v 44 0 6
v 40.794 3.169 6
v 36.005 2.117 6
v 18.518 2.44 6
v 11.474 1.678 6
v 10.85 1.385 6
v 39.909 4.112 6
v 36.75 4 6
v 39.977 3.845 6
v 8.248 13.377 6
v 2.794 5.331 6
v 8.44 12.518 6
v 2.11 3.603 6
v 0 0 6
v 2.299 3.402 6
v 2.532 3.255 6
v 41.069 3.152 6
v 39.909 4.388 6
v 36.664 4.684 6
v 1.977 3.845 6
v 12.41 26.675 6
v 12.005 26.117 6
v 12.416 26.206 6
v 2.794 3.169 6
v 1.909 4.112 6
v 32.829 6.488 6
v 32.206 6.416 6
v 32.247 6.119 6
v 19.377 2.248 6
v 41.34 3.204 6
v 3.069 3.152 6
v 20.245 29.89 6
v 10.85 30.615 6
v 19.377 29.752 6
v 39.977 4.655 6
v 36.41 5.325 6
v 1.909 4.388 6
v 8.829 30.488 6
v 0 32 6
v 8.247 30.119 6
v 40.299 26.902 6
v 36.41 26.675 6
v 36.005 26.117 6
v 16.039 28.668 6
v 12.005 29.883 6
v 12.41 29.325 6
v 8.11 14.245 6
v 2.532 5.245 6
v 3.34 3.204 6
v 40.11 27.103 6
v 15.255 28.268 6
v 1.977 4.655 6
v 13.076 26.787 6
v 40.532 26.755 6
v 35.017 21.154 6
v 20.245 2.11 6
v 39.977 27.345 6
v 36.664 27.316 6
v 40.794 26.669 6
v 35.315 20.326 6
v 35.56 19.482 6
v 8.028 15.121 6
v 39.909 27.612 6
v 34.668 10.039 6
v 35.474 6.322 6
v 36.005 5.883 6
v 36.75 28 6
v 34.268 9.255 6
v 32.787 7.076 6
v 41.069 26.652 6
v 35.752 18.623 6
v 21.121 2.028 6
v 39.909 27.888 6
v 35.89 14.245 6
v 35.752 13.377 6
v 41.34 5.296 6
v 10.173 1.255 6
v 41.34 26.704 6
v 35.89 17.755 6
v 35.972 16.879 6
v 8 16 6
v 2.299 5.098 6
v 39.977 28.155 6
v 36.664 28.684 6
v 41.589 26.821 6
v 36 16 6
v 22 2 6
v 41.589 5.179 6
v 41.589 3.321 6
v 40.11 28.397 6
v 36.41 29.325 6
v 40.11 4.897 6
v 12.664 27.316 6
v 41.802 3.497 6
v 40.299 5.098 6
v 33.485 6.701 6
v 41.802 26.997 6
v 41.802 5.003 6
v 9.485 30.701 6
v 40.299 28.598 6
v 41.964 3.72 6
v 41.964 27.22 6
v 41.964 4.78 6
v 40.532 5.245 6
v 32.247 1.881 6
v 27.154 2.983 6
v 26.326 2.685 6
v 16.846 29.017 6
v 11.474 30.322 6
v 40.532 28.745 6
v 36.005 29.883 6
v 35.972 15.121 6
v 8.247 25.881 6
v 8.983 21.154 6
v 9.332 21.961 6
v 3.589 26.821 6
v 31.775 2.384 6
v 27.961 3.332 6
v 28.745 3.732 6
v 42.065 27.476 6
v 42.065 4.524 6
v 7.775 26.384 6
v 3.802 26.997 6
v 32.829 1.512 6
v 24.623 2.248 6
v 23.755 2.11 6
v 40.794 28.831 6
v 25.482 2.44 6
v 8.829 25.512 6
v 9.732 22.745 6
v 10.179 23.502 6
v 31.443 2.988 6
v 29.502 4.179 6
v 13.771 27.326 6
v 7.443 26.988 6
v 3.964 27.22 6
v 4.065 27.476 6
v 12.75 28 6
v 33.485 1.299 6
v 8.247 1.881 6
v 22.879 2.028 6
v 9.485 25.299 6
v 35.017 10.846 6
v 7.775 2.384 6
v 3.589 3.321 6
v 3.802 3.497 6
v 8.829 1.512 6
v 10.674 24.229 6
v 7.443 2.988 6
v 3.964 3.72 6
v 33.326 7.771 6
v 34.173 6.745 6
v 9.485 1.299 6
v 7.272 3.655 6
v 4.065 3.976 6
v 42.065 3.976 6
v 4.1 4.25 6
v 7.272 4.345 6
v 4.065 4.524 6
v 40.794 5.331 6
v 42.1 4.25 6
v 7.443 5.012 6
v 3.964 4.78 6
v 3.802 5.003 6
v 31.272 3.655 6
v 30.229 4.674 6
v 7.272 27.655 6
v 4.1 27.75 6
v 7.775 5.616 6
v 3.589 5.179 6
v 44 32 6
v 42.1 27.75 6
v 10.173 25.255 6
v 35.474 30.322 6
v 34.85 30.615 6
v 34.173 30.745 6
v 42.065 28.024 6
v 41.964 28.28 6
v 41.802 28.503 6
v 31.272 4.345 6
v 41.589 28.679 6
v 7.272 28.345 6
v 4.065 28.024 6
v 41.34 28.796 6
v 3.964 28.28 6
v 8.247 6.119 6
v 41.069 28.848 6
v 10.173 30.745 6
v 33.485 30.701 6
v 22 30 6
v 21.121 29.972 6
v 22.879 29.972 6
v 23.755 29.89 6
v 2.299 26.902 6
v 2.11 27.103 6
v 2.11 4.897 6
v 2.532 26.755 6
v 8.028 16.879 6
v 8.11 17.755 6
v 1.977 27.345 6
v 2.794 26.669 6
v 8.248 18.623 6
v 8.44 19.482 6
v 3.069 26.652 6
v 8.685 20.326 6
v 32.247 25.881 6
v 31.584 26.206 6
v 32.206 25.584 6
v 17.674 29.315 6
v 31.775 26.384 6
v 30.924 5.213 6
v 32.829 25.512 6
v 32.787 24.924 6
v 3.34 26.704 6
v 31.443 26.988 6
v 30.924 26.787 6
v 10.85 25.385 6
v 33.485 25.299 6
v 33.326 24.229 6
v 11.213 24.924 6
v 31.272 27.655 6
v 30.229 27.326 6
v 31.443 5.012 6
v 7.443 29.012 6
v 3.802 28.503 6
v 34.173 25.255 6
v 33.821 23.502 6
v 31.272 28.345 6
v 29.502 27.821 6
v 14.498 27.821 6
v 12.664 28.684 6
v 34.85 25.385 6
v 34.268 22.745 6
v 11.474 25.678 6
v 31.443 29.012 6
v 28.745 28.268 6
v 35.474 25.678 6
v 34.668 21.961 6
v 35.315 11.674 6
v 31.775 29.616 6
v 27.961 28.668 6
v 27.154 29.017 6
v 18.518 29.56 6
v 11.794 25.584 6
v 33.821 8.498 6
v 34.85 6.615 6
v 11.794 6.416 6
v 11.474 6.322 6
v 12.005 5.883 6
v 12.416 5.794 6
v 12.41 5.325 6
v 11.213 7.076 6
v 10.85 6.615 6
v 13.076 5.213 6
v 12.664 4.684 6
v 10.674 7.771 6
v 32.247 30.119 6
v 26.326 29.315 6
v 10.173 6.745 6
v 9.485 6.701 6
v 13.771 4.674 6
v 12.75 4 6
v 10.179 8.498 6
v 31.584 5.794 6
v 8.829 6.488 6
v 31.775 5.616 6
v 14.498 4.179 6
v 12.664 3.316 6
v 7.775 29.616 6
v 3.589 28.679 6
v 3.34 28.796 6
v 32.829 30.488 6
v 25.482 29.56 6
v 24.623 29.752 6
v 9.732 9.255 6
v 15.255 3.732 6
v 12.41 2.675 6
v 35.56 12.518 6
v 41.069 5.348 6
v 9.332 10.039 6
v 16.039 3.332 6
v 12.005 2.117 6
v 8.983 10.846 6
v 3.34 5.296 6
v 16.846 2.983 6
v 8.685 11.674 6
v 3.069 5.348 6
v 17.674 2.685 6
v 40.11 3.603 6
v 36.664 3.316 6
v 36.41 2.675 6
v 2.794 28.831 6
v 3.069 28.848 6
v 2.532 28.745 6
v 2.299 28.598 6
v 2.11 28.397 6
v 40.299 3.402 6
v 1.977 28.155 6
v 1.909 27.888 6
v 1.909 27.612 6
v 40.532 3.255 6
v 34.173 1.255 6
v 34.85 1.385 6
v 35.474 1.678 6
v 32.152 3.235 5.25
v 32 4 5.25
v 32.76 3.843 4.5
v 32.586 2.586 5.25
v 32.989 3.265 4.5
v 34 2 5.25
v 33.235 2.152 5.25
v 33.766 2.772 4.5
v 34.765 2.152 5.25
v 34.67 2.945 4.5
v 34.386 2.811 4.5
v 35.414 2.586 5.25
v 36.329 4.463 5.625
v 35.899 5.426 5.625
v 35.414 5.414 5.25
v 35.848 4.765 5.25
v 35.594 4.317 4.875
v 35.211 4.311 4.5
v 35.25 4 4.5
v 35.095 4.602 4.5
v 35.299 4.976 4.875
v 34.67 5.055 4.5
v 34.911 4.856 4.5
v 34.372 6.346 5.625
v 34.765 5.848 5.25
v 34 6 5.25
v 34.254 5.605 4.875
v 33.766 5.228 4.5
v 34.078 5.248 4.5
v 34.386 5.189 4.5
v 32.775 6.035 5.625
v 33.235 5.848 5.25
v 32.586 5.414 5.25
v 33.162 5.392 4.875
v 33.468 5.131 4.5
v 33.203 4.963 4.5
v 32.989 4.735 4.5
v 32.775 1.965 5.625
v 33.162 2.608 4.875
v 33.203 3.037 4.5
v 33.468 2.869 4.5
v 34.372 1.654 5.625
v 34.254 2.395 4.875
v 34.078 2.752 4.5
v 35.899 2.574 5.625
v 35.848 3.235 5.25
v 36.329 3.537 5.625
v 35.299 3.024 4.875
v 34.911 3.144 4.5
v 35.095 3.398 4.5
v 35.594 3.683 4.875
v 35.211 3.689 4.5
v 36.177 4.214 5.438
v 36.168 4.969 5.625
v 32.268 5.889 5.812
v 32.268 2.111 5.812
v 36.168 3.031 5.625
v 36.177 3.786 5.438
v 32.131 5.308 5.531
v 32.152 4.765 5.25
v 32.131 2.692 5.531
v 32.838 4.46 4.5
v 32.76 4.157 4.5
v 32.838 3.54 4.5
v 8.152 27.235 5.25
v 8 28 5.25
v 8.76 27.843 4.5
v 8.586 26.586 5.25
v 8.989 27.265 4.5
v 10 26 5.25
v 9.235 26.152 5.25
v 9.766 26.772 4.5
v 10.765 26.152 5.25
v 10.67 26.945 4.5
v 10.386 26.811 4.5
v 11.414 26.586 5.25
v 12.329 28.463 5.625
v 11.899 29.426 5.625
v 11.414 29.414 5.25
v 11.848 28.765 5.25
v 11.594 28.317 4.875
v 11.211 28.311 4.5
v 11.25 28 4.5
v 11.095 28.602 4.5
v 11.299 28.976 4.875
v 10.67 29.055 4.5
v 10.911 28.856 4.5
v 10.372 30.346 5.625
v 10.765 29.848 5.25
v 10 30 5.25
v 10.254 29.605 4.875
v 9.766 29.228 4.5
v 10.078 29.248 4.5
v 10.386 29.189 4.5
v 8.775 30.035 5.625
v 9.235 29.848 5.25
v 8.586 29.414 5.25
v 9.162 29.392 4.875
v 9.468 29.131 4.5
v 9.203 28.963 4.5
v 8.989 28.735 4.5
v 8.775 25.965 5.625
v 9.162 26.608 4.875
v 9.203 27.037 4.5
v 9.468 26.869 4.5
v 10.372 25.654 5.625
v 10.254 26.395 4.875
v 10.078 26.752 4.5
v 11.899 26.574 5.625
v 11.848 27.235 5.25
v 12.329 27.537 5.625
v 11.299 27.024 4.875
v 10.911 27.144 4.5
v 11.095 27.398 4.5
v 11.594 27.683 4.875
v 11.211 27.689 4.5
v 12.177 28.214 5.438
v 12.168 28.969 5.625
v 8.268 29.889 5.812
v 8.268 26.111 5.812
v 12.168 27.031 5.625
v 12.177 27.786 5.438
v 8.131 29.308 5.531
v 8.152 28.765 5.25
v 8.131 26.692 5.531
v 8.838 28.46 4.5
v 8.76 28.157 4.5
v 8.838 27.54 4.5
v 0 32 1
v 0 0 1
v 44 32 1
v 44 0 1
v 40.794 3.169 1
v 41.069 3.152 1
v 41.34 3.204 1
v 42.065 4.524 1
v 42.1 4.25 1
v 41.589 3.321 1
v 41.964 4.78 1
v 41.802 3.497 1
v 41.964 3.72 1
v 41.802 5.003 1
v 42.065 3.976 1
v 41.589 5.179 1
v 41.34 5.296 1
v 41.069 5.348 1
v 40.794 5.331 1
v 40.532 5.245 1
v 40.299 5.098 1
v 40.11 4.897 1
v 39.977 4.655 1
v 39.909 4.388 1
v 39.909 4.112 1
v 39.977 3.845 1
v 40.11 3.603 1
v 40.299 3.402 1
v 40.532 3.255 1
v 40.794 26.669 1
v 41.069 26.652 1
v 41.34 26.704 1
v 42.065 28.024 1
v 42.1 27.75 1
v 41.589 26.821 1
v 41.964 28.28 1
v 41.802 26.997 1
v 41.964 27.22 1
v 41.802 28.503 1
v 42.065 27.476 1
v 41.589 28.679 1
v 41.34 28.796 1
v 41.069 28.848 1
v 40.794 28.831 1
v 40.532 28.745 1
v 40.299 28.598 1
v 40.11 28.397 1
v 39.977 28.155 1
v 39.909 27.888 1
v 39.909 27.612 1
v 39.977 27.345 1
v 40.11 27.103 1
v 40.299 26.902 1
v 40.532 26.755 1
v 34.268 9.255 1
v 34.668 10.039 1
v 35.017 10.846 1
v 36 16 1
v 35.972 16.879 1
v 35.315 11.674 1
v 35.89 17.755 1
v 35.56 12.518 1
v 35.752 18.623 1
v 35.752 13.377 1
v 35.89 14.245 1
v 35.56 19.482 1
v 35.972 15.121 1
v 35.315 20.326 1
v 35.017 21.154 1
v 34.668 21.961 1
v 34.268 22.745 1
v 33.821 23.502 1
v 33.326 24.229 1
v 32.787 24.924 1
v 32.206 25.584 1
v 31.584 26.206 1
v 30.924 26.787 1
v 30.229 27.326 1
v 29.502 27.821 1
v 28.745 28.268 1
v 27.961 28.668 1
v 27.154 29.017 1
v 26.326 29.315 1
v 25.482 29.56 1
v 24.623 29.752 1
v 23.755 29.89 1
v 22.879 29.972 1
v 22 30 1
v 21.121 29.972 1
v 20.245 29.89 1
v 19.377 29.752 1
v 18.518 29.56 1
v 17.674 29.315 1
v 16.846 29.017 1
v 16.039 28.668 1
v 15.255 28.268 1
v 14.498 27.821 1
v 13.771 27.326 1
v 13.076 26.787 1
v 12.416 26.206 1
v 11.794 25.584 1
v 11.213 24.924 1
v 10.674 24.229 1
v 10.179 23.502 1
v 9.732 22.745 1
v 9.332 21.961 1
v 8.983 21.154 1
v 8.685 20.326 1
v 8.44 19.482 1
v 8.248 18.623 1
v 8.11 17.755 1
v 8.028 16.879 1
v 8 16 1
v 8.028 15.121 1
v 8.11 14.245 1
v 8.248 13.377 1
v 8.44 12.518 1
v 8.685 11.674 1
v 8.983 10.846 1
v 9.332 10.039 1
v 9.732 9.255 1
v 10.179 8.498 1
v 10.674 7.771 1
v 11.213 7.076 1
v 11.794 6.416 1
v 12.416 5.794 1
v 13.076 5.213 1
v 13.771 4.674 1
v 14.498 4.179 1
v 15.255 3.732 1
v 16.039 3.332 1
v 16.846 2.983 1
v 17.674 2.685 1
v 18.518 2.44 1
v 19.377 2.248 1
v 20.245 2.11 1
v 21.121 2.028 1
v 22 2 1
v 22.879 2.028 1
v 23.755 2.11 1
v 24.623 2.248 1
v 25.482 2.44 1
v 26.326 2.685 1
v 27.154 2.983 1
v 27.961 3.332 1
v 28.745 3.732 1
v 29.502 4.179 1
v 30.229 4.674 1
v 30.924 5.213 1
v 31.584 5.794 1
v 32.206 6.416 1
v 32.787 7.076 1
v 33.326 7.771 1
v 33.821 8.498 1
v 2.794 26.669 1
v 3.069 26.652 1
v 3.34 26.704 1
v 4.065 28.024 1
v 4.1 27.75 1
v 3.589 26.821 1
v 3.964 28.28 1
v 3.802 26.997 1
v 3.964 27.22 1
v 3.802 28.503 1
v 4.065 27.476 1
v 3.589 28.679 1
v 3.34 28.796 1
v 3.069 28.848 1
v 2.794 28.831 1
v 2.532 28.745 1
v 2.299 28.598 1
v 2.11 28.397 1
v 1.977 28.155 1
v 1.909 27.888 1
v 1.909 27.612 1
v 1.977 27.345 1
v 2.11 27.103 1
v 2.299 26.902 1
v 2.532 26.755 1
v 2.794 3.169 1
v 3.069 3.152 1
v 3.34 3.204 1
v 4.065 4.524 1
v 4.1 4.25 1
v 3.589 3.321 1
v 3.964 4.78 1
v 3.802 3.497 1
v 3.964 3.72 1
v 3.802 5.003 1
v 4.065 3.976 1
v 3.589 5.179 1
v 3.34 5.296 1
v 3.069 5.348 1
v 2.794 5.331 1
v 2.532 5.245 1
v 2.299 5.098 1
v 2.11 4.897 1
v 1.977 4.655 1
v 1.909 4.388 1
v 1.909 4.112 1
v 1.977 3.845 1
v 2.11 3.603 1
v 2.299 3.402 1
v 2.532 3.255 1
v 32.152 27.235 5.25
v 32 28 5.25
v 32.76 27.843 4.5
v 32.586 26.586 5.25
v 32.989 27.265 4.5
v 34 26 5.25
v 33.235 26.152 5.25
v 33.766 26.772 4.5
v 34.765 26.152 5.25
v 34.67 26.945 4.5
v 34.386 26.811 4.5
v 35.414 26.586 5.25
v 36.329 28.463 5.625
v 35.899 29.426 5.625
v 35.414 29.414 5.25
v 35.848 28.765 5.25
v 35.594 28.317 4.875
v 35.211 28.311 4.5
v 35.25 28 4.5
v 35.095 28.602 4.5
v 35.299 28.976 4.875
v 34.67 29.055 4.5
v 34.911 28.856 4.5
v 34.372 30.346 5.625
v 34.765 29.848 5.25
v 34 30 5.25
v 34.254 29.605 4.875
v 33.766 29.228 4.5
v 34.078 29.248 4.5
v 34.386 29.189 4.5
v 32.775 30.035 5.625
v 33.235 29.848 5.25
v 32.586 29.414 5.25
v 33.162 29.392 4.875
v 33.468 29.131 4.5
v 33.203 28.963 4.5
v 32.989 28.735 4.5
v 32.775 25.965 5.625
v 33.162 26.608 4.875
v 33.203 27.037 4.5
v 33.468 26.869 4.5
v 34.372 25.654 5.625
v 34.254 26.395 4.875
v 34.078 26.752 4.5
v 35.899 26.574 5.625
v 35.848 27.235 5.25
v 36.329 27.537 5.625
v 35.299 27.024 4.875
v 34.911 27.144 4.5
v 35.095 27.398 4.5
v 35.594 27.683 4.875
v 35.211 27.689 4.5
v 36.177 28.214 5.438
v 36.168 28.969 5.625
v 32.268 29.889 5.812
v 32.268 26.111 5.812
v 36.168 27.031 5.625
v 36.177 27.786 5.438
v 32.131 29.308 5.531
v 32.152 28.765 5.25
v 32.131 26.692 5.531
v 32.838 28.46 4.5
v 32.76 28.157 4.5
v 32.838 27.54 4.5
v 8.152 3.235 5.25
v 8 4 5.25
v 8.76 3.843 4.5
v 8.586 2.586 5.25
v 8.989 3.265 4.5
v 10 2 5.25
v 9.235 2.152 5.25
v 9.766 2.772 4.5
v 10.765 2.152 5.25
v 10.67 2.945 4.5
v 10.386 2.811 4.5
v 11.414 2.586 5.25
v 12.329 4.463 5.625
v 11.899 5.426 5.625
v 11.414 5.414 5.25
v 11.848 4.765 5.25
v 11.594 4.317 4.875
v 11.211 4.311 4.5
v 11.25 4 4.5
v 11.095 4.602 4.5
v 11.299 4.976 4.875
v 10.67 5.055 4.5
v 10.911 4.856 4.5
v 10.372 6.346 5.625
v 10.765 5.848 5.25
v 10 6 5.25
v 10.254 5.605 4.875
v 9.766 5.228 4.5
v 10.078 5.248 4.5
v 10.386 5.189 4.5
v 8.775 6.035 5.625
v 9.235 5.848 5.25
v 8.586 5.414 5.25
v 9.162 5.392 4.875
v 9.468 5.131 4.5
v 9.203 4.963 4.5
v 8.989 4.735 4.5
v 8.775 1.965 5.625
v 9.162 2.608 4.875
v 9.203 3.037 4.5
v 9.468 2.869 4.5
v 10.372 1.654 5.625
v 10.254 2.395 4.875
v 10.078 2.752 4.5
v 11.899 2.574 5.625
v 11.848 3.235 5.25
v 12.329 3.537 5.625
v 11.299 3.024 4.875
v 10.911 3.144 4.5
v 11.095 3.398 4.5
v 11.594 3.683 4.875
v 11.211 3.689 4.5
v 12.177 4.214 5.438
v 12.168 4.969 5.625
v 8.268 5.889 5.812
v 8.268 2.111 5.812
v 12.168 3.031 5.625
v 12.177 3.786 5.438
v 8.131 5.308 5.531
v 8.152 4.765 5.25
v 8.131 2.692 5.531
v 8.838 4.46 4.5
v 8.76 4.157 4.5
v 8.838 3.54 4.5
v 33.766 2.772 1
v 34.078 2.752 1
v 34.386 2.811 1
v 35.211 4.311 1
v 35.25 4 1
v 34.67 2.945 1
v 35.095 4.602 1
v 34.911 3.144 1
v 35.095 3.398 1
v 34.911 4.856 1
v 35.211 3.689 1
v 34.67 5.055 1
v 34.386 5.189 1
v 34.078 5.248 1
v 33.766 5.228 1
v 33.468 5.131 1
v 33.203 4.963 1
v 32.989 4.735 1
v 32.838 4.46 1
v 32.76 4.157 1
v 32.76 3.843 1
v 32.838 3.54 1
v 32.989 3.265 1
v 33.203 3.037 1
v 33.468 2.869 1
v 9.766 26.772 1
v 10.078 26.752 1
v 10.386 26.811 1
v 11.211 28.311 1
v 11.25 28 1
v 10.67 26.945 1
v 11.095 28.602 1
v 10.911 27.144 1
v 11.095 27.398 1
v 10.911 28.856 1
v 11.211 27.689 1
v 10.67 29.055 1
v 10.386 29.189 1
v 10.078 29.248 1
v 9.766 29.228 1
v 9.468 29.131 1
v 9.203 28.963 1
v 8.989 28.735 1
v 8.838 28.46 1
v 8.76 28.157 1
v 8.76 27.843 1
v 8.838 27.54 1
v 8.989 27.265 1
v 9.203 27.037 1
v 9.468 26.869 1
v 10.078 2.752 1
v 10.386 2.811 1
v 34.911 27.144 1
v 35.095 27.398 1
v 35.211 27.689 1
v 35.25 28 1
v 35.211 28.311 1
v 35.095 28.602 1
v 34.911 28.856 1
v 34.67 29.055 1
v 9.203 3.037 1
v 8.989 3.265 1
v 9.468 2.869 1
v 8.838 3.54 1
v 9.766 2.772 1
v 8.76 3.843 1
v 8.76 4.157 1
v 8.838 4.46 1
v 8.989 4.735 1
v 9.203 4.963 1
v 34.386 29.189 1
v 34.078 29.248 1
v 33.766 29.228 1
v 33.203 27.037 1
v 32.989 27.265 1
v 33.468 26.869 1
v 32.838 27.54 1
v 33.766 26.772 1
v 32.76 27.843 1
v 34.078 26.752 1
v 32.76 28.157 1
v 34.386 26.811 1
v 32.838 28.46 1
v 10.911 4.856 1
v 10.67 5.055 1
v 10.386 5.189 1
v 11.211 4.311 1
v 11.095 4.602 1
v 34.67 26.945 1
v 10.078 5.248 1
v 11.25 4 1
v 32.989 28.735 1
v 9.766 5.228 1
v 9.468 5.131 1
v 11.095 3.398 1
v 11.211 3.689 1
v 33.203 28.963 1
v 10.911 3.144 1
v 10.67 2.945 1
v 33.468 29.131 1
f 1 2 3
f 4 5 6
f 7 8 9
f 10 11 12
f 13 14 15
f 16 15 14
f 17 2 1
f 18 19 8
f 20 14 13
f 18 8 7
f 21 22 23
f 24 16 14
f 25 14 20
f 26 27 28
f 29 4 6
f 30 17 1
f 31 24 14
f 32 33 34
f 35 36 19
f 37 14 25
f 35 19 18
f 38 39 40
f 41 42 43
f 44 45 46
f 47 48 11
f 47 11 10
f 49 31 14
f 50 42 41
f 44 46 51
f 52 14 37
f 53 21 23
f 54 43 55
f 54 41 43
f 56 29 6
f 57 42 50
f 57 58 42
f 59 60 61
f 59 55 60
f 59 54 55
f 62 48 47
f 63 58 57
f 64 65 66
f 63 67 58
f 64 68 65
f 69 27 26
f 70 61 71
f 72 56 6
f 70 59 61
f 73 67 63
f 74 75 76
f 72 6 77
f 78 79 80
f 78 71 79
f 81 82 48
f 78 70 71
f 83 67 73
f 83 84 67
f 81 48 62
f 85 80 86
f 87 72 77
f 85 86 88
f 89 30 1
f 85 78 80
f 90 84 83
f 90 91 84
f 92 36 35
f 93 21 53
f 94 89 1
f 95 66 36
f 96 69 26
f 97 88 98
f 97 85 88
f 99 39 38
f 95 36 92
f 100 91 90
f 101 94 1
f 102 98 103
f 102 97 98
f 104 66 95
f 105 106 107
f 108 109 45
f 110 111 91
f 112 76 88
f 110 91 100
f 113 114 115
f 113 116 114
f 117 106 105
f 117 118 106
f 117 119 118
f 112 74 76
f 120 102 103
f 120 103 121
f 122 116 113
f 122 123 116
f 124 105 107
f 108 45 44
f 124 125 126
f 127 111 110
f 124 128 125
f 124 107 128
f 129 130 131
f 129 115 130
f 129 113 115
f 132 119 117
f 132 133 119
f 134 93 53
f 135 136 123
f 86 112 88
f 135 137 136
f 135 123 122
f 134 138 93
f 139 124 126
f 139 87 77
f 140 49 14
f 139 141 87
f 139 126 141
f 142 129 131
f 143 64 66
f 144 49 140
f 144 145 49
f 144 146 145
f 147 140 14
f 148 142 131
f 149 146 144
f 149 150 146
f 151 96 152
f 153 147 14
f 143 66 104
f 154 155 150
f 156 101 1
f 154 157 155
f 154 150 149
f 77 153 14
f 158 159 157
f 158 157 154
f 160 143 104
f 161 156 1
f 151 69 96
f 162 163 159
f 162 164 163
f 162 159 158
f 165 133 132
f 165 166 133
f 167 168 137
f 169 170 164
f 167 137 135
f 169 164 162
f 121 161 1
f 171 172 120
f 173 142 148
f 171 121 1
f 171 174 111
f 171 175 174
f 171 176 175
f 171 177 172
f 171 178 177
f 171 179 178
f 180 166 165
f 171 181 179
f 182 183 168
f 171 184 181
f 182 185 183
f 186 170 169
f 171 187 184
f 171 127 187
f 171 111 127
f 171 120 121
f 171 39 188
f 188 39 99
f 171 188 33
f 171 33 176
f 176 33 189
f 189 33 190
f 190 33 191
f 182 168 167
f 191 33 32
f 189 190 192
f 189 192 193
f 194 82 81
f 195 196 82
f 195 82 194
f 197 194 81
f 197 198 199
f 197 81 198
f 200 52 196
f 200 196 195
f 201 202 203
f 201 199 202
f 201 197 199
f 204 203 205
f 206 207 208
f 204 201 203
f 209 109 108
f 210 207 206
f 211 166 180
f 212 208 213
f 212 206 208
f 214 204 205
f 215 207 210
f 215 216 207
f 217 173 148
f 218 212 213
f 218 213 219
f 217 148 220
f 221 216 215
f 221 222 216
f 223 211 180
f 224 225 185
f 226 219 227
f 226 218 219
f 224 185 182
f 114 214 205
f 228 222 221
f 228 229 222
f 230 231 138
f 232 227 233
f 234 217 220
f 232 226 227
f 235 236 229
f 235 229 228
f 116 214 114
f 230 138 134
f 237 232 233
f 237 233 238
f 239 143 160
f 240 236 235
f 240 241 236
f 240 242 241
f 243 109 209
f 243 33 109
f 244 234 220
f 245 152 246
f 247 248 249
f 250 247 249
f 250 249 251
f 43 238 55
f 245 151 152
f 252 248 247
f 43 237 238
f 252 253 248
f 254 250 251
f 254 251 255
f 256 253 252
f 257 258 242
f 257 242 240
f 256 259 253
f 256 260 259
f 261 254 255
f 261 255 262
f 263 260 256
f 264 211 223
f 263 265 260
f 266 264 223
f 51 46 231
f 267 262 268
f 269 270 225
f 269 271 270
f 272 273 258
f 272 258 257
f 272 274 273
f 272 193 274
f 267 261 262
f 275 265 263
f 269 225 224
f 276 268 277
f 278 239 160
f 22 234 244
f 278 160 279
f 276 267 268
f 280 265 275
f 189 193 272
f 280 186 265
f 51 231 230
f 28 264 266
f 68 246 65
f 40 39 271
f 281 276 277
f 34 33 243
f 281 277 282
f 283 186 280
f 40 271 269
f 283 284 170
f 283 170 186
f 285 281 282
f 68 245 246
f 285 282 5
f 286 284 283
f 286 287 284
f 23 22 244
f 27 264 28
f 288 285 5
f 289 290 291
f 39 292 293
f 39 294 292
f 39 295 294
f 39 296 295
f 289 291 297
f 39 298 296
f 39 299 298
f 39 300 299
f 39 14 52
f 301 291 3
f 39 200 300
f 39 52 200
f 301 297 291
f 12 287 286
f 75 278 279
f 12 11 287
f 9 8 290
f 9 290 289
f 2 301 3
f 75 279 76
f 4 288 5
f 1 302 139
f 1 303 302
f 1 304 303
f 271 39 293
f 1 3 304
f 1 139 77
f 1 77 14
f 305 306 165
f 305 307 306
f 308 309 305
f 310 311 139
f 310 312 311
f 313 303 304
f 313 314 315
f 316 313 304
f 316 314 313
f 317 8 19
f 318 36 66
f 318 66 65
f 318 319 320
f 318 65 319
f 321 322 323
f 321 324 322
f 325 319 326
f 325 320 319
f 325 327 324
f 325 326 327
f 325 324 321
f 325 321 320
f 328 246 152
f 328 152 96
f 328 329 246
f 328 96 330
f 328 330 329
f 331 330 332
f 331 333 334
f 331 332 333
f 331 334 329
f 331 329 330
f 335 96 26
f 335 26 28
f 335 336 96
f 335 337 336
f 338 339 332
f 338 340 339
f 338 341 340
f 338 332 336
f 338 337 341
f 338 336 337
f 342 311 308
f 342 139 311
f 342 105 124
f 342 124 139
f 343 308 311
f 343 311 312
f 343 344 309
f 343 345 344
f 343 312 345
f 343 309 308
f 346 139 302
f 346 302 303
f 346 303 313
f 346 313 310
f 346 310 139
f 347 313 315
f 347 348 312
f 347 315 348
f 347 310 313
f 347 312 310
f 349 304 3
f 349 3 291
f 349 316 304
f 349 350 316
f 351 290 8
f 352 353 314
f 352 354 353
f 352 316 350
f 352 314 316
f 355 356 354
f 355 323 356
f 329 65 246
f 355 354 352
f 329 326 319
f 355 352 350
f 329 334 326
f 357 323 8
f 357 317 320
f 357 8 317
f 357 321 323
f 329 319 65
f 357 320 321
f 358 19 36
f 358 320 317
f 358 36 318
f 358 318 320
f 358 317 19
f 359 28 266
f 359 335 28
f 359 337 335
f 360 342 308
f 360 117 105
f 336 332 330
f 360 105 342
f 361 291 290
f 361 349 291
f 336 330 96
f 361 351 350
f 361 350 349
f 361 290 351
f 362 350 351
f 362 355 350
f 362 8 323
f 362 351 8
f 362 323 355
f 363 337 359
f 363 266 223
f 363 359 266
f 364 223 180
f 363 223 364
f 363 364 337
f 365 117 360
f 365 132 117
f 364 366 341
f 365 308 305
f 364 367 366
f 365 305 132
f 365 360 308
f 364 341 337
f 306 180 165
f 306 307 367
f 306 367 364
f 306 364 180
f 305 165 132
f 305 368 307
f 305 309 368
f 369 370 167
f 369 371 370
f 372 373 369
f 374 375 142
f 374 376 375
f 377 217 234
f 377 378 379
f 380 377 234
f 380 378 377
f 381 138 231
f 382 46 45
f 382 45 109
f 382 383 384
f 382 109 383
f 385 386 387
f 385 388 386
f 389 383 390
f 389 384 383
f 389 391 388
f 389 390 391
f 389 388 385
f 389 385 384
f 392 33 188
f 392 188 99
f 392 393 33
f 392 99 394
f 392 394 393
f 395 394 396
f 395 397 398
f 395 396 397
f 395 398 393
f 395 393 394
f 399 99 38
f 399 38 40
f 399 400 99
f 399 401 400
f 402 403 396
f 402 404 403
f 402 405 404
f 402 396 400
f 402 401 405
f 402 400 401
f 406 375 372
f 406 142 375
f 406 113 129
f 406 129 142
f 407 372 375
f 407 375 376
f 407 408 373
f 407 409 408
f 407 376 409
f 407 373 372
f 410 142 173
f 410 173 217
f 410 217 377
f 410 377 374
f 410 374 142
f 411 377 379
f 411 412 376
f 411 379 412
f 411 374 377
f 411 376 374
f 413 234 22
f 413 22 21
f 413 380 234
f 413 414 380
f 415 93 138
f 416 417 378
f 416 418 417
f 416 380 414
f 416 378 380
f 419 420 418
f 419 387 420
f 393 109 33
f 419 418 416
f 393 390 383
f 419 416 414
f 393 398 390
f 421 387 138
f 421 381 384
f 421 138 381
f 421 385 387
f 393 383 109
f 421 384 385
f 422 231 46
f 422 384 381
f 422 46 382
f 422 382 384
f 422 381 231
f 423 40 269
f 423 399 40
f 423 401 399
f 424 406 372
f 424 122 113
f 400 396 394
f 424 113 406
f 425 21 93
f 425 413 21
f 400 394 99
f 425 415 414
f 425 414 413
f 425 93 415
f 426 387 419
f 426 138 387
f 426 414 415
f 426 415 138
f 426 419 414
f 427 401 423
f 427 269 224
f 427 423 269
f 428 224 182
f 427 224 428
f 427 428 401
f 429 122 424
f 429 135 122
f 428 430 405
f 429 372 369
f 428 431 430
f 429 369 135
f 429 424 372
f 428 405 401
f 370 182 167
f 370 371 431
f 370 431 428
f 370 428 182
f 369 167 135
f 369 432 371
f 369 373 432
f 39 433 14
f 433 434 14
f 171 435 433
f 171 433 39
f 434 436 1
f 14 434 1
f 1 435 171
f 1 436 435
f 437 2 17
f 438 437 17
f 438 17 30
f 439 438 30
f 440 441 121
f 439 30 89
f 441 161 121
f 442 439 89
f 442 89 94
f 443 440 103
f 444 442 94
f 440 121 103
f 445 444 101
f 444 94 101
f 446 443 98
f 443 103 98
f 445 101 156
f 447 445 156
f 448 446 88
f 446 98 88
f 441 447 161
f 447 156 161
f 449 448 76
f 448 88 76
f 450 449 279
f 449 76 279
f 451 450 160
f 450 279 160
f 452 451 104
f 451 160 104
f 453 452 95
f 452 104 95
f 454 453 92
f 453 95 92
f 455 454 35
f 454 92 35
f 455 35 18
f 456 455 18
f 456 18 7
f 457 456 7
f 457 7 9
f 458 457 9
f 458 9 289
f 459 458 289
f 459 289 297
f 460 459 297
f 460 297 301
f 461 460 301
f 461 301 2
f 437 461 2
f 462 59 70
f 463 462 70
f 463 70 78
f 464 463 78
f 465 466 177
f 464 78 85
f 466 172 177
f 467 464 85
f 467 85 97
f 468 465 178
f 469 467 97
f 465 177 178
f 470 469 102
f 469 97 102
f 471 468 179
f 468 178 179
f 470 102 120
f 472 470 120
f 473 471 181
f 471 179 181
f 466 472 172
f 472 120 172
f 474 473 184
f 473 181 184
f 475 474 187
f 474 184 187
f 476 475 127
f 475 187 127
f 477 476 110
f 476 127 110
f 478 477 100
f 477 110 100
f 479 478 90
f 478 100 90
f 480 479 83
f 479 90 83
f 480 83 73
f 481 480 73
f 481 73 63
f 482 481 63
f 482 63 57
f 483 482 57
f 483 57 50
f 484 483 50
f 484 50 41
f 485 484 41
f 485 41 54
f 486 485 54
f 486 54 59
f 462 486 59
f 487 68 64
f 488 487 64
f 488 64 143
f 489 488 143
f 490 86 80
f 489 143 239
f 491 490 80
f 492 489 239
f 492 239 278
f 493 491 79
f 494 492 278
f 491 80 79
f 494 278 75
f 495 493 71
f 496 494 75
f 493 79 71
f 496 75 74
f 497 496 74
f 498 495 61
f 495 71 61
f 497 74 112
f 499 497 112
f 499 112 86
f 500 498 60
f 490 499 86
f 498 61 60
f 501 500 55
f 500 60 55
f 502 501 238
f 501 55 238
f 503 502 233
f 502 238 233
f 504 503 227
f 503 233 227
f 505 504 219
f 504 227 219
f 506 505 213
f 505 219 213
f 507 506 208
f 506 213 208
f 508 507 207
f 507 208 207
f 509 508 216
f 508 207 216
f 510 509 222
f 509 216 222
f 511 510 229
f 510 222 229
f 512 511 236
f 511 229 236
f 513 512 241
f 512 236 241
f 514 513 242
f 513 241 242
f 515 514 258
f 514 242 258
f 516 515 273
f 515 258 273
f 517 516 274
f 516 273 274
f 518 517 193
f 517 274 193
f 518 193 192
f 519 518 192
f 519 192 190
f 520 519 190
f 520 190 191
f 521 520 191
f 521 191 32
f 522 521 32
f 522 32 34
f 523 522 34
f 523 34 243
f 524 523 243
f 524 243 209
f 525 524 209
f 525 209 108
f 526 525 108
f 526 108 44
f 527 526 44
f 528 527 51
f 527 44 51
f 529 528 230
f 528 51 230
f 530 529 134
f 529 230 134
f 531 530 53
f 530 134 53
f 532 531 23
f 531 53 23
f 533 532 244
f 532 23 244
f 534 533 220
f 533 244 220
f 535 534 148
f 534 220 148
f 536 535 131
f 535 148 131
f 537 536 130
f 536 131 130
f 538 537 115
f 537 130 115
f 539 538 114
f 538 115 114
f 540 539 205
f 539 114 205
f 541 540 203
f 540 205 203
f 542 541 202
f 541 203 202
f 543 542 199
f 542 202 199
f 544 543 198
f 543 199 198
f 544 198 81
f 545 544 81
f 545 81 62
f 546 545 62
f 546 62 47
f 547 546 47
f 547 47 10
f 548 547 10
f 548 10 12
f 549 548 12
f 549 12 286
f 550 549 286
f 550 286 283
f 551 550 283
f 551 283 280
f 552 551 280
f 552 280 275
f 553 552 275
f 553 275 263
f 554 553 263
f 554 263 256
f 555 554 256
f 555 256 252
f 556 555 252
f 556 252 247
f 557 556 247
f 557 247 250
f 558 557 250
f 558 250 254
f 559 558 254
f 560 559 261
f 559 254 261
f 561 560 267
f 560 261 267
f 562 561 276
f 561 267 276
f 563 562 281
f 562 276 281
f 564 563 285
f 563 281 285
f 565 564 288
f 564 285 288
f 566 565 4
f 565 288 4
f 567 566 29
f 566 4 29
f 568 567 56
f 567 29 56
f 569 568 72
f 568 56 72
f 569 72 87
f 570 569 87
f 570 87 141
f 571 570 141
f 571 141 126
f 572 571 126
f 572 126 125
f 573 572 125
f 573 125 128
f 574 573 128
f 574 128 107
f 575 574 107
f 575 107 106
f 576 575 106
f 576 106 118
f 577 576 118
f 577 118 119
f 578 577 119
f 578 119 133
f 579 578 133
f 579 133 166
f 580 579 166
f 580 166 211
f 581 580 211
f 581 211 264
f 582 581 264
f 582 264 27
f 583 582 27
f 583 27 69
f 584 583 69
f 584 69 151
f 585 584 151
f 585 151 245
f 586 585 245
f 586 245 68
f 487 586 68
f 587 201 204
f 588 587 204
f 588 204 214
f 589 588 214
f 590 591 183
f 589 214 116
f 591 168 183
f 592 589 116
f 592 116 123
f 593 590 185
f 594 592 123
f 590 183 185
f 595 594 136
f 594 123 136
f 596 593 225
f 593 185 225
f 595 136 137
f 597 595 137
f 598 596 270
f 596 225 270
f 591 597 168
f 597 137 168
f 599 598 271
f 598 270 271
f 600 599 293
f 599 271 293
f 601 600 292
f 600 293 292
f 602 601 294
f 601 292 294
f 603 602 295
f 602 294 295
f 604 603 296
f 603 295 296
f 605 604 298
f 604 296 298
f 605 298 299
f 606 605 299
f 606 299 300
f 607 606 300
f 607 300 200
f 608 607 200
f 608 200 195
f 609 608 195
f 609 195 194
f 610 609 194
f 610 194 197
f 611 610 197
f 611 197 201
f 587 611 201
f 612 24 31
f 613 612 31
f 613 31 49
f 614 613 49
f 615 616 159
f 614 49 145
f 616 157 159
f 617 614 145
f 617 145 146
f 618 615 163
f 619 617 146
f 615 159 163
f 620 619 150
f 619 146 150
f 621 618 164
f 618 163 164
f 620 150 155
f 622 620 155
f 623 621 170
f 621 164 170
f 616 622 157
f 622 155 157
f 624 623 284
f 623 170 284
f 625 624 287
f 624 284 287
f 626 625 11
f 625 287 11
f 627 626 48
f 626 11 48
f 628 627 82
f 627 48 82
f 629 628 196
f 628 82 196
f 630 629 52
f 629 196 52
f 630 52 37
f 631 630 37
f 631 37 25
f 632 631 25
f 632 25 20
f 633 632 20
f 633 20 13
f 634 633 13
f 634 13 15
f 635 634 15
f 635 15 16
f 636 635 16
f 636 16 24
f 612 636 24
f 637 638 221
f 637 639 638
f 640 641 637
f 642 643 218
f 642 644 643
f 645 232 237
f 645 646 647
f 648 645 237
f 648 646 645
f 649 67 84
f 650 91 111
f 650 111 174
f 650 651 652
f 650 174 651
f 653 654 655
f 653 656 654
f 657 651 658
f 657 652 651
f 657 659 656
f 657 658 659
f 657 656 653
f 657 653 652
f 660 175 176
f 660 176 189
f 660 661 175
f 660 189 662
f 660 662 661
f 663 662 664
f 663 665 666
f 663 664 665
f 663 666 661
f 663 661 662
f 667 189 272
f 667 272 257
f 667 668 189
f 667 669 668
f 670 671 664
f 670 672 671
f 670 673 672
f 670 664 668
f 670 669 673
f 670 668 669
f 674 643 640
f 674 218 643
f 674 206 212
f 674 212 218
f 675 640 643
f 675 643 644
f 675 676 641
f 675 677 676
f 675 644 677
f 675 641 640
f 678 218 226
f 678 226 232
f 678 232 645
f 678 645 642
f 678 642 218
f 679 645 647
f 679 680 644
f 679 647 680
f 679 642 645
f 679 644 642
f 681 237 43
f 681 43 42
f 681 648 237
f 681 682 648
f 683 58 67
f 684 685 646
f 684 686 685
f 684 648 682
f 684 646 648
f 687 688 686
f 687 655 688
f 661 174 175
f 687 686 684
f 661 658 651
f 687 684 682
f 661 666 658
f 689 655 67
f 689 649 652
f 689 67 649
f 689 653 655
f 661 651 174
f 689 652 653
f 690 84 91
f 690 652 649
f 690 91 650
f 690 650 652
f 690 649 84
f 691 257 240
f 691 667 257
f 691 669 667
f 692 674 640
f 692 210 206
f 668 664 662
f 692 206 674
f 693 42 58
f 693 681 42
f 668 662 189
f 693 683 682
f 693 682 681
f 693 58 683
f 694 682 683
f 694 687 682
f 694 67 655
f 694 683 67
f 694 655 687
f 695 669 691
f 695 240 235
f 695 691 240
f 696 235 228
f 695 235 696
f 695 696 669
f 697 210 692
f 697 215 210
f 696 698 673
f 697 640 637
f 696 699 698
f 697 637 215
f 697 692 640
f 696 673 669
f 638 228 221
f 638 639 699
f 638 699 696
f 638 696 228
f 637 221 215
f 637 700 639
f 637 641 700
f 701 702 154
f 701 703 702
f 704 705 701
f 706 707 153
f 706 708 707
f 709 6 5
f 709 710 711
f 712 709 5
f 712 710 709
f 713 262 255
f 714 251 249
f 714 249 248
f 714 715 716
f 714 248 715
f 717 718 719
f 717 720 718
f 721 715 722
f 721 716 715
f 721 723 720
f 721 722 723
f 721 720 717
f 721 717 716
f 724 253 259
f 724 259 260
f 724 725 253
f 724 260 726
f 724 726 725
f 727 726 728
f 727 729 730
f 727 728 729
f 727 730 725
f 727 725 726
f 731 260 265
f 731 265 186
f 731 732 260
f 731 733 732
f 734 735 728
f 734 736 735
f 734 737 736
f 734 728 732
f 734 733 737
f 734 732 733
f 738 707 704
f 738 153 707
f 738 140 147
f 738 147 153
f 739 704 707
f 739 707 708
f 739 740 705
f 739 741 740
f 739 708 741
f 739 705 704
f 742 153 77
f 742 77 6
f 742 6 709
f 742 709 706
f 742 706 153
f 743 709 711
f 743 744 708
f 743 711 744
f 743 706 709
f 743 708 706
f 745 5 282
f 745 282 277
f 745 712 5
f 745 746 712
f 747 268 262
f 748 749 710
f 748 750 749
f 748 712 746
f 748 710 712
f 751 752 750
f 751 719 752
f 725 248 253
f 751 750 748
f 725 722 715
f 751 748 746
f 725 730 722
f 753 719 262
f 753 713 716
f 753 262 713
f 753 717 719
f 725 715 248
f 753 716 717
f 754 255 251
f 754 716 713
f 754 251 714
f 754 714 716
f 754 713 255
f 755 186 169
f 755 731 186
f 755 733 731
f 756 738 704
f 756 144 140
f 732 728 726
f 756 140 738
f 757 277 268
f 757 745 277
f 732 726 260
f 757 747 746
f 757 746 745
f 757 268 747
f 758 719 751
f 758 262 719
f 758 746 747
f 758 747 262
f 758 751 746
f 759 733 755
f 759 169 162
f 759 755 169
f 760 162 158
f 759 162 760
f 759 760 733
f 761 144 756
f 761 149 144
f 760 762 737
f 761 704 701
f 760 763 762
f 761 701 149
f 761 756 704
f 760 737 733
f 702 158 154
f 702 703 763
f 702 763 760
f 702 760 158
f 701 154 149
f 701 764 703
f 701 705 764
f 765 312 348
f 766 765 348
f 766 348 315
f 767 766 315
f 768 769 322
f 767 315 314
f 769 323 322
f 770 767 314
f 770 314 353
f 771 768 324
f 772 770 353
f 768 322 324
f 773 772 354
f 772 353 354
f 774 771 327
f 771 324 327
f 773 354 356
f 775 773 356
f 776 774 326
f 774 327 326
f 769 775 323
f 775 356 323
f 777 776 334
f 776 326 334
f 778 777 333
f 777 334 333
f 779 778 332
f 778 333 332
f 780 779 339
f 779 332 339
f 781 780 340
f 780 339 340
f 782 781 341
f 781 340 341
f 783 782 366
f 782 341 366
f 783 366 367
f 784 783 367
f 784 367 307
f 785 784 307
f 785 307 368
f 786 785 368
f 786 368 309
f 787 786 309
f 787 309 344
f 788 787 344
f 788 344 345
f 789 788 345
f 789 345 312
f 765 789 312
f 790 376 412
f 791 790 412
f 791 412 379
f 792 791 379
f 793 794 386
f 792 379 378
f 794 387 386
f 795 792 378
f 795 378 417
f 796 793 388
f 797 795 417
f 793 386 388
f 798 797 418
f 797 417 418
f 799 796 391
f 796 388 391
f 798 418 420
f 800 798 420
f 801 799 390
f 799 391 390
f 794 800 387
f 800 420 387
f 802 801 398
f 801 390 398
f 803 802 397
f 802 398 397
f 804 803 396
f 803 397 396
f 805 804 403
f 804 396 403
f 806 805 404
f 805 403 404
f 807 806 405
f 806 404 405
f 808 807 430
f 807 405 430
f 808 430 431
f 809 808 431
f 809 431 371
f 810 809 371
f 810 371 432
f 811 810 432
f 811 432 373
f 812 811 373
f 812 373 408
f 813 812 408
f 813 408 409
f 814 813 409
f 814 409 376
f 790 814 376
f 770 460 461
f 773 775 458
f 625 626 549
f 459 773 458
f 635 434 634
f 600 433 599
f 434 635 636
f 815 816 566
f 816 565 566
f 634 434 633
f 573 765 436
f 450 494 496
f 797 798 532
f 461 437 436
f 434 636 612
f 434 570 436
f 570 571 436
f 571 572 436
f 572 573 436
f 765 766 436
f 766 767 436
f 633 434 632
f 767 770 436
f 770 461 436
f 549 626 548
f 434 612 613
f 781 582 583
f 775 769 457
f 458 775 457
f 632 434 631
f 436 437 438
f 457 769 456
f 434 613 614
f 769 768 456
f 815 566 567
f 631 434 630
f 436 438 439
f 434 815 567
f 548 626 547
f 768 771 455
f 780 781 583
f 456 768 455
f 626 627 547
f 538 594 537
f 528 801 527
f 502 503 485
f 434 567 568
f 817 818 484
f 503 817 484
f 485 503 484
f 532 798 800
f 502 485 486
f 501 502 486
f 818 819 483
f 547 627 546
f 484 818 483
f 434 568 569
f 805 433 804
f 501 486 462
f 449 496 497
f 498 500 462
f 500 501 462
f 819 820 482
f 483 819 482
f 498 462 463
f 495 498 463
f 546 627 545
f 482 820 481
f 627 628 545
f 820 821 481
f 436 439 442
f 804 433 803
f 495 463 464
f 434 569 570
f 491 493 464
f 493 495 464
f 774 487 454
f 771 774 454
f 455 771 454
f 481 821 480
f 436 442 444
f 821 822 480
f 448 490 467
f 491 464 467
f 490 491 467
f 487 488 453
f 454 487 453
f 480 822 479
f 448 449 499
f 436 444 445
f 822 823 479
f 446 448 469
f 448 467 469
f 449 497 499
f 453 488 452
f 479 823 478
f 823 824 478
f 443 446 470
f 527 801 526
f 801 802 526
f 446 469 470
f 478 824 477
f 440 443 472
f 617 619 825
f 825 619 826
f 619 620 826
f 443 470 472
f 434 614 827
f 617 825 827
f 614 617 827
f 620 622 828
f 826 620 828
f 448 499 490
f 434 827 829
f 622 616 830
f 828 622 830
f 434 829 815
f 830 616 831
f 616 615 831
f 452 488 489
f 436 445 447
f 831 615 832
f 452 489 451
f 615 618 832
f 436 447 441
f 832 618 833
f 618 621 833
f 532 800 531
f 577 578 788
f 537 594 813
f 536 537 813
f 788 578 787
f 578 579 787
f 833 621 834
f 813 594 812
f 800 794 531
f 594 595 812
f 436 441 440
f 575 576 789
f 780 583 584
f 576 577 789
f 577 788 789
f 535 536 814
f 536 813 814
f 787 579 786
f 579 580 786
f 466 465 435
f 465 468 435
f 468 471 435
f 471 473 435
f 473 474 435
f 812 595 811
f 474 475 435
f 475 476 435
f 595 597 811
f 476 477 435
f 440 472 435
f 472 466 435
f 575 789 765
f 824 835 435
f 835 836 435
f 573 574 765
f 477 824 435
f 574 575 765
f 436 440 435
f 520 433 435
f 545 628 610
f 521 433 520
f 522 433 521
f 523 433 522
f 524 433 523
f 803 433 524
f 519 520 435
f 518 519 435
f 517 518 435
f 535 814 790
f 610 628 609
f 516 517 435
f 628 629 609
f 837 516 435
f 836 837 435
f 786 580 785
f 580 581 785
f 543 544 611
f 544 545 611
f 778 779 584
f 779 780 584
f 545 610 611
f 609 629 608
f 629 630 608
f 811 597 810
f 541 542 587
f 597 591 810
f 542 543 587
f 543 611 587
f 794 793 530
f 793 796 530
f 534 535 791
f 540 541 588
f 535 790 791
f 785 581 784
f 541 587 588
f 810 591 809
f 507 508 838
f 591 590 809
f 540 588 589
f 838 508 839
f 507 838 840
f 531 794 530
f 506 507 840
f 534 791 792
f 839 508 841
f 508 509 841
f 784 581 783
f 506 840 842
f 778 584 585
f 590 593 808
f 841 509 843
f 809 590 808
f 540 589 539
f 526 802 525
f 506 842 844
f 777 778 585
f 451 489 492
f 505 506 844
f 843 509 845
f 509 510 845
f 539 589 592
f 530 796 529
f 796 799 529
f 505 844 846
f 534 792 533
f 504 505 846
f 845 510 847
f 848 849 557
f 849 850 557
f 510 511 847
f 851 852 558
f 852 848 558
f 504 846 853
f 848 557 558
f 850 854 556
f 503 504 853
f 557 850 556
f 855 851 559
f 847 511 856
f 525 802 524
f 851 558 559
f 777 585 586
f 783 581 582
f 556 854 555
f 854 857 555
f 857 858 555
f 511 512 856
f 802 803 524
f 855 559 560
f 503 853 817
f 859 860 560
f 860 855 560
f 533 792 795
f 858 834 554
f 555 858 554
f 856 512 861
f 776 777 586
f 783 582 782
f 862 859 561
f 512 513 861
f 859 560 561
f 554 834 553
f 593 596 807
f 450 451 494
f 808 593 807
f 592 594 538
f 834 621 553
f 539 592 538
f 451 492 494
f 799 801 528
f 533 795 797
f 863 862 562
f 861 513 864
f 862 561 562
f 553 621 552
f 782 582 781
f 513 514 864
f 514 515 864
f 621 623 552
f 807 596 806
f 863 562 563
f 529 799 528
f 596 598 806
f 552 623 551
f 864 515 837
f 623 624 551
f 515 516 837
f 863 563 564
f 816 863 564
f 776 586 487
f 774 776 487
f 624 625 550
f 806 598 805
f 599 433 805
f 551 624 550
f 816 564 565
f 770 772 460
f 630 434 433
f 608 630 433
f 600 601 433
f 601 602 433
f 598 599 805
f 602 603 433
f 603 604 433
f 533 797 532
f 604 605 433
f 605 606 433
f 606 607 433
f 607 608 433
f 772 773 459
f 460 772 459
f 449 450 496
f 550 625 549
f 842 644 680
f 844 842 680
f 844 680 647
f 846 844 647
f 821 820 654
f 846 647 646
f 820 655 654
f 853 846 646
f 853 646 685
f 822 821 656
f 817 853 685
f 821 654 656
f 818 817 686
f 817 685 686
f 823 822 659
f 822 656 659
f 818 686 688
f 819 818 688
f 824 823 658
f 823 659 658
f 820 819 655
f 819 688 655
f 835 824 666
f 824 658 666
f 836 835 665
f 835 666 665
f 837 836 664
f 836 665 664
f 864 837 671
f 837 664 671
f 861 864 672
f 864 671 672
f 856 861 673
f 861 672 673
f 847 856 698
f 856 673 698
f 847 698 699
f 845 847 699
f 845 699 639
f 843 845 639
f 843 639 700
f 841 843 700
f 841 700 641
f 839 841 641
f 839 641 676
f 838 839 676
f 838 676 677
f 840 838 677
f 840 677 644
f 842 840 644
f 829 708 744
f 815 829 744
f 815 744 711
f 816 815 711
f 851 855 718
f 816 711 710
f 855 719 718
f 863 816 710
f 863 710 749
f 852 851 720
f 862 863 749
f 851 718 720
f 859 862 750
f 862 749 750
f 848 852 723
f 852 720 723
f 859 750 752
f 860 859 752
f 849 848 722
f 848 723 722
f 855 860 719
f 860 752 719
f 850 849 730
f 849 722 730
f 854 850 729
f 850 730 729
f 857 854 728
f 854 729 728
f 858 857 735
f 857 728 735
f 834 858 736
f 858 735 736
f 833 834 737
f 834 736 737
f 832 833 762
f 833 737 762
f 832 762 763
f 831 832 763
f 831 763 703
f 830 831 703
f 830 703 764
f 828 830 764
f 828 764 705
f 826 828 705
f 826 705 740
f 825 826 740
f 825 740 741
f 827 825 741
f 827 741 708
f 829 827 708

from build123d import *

# Parameters (mm, degrees)
CYLINDER006_R     = 1.25
CYLINDER006_DEPTH = 10
CYLINDER007_R     = 1.25
CYLINDER007_DEPTH = 10
CYLINDER008_R     = 1.25
CYLINDER008_DEPTH = 10
CYLINDER001_R     = 1.25
CYLINDER001_DEPTH = 10
CYLINDER003_R     = 1.1
CYLINDER003_DEPTH = 10
CYLINDER004_R     = 1.1
CYLINDER004_DEPTH = 10
CYLINDER005_R     = 1.1
CYLINDER005_DEPTH = 10
CYLINDER002_R     = 1.1
CYLINDER002_DEPTH = 10
CYLINDER_R        = 14
CYLINDER_DEPTH    = 10
BOX_W             = 44
BOX_H             = 32
BOX_DEPTH         = 5
CHAMFER_SIZE      = 1.5
CHAMFER001_SIZE   = 1.5


with BuildPart() as cylinder006:
    # Cylinder006 → Cylinder006 (new body)
    with BuildSketch(Plane(origin=(10, 28, 0), x_dir=(1, 0, 0), z_dir=(0, 0, 1))):
        Circle(CYLINDER006_R)
    extrude(amount=CYLINDER006_DEPTH)


with BuildPart() as cylinder007:
    # Cylinder007 → Cylinder007 (new body)
    with BuildSketch(Plane(origin=(34, 28, 0), x_dir=(1, 0, 0), z_dir=(0, 0, 1))):
        Circle(CYLINDER007_R)
    extrude(amount=CYLINDER007_DEPTH)


with BuildPart() as cylinder008:
    # Cylinder008 → Cylinder008 (new body)
    with BuildSketch(Plane(origin=(34, 4, 0), x_dir=(1, 0, 0), z_dir=(0, 0, 1))):
        Circle(CYLINDER008_R)
    extrude(amount=CYLINDER008_DEPTH)


with BuildPart() as fusion001:
    # Cylinder001 → Cylinder001 (new body)
    with BuildSketch(Plane(origin=(10, 4, 0), x_dir=(1, 0, 0), z_dir=(0, 0, 1))):
        Circle(CYLINDER001_R)
    extrude(amount=CYLINDER001_DEPTH)

    # Fusion001: union Cylinder006, Cylinder007, Cylinder008
    add(cylinder006.part)
    add(cylinder007.part)
    add(cylinder008.part)


with BuildPart() as cylinder003:
    # Cylinder003 → Cylinder003 (new body)
    with BuildSketch(Plane(origin=(3, 27.75, 0), x_dir=(1, 0, 0), z_dir=(0, 0, 1))):
        Circle(CYLINDER003_R)
    extrude(amount=CYLINDER003_DEPTH)


with BuildPart() as cylinder004:
    # Cylinder004 → Cylinder004 (new body)
    with BuildSketch(Plane(origin=(41, 4.25, 0), x_dir=(1, 0, 0), z_dir=(0, 0, 1))):
        Circle(CYLINDER004_R)
    extrude(amount=CYLINDER004_DEPTH)


with BuildPart() as cylinder005:
    # Cylinder005 → Cylinder005 (new body)
    with BuildSketch(Plane(origin=(41, 27.75, 0), x_dir=(1, 0, 0), z_dir=(0, 0, 1))):
        Circle(CYLINDER005_R)
    extrude(amount=CYLINDER005_DEPTH)


with BuildPart() as fusion:
    # Cylinder002 → Cylinder002 (new body)
    with BuildSketch(Plane(origin=(3, 4.25, 0), x_dir=(1, 0, 0), z_dir=(0, 0, 1))):
        Circle(CYLINDER002_R)
    extrude(amount=CYLINDER002_DEPTH)

    # Fusion: union Cylinder003, Cylinder004, Cylinder005
    add(cylinder003.part)
    add(cylinder004.part)
    add(cylinder005.part)


with BuildPart() as cylinder:
    # Cylinder → Cylinder (new body)
    with BuildSketch(Plane(origin=(22, 16, -1), x_dir=(1, 0, 0), z_dir=(0, 0, 1))):
        Circle(CYLINDER_R)
    extrude(amount=CYLINDER_DEPTH)


with BuildPart() as chamfer001:
    # Box → Box (new body)
    with BuildSketch(Plane.XY.offset(1)):
        with Locations((22, 16)):
            Rectangle(BOX_W, BOX_H)
    extrude(amount=BOX_DEPTH)

    # Cut: cut Cylinder
    add(cylinder.part, mode=Mode.SUBTRACT)

    # Cut001: cut Fusion
    add(fusion.part, mode=Mode.SUBTRACT)

    # Cut002: cut Fusion001
    add(fusion001.part, mode=Mode.SUBTRACT)

    # Chamfer
    chamfer_edges = [chamfer001.edges().sort_by_distance(p)[0] for p in [
        (8.75, 28, 6),
    ]]
    chamfer(chamfer_edges, length=CHAMFER_SIZE)

    # Chamfer001
    chamfer001_edges = [chamfer001.edges().sort_by_distance(p)[0] for p in [
        (32.75, 4, 6),
        (32.75, 28, 6),
        (8.75, 4, 6),
    ]]
    chamfer(chamfer001_edges, length=CHAMFER001_SIZE)


solid = chamfer001.part
